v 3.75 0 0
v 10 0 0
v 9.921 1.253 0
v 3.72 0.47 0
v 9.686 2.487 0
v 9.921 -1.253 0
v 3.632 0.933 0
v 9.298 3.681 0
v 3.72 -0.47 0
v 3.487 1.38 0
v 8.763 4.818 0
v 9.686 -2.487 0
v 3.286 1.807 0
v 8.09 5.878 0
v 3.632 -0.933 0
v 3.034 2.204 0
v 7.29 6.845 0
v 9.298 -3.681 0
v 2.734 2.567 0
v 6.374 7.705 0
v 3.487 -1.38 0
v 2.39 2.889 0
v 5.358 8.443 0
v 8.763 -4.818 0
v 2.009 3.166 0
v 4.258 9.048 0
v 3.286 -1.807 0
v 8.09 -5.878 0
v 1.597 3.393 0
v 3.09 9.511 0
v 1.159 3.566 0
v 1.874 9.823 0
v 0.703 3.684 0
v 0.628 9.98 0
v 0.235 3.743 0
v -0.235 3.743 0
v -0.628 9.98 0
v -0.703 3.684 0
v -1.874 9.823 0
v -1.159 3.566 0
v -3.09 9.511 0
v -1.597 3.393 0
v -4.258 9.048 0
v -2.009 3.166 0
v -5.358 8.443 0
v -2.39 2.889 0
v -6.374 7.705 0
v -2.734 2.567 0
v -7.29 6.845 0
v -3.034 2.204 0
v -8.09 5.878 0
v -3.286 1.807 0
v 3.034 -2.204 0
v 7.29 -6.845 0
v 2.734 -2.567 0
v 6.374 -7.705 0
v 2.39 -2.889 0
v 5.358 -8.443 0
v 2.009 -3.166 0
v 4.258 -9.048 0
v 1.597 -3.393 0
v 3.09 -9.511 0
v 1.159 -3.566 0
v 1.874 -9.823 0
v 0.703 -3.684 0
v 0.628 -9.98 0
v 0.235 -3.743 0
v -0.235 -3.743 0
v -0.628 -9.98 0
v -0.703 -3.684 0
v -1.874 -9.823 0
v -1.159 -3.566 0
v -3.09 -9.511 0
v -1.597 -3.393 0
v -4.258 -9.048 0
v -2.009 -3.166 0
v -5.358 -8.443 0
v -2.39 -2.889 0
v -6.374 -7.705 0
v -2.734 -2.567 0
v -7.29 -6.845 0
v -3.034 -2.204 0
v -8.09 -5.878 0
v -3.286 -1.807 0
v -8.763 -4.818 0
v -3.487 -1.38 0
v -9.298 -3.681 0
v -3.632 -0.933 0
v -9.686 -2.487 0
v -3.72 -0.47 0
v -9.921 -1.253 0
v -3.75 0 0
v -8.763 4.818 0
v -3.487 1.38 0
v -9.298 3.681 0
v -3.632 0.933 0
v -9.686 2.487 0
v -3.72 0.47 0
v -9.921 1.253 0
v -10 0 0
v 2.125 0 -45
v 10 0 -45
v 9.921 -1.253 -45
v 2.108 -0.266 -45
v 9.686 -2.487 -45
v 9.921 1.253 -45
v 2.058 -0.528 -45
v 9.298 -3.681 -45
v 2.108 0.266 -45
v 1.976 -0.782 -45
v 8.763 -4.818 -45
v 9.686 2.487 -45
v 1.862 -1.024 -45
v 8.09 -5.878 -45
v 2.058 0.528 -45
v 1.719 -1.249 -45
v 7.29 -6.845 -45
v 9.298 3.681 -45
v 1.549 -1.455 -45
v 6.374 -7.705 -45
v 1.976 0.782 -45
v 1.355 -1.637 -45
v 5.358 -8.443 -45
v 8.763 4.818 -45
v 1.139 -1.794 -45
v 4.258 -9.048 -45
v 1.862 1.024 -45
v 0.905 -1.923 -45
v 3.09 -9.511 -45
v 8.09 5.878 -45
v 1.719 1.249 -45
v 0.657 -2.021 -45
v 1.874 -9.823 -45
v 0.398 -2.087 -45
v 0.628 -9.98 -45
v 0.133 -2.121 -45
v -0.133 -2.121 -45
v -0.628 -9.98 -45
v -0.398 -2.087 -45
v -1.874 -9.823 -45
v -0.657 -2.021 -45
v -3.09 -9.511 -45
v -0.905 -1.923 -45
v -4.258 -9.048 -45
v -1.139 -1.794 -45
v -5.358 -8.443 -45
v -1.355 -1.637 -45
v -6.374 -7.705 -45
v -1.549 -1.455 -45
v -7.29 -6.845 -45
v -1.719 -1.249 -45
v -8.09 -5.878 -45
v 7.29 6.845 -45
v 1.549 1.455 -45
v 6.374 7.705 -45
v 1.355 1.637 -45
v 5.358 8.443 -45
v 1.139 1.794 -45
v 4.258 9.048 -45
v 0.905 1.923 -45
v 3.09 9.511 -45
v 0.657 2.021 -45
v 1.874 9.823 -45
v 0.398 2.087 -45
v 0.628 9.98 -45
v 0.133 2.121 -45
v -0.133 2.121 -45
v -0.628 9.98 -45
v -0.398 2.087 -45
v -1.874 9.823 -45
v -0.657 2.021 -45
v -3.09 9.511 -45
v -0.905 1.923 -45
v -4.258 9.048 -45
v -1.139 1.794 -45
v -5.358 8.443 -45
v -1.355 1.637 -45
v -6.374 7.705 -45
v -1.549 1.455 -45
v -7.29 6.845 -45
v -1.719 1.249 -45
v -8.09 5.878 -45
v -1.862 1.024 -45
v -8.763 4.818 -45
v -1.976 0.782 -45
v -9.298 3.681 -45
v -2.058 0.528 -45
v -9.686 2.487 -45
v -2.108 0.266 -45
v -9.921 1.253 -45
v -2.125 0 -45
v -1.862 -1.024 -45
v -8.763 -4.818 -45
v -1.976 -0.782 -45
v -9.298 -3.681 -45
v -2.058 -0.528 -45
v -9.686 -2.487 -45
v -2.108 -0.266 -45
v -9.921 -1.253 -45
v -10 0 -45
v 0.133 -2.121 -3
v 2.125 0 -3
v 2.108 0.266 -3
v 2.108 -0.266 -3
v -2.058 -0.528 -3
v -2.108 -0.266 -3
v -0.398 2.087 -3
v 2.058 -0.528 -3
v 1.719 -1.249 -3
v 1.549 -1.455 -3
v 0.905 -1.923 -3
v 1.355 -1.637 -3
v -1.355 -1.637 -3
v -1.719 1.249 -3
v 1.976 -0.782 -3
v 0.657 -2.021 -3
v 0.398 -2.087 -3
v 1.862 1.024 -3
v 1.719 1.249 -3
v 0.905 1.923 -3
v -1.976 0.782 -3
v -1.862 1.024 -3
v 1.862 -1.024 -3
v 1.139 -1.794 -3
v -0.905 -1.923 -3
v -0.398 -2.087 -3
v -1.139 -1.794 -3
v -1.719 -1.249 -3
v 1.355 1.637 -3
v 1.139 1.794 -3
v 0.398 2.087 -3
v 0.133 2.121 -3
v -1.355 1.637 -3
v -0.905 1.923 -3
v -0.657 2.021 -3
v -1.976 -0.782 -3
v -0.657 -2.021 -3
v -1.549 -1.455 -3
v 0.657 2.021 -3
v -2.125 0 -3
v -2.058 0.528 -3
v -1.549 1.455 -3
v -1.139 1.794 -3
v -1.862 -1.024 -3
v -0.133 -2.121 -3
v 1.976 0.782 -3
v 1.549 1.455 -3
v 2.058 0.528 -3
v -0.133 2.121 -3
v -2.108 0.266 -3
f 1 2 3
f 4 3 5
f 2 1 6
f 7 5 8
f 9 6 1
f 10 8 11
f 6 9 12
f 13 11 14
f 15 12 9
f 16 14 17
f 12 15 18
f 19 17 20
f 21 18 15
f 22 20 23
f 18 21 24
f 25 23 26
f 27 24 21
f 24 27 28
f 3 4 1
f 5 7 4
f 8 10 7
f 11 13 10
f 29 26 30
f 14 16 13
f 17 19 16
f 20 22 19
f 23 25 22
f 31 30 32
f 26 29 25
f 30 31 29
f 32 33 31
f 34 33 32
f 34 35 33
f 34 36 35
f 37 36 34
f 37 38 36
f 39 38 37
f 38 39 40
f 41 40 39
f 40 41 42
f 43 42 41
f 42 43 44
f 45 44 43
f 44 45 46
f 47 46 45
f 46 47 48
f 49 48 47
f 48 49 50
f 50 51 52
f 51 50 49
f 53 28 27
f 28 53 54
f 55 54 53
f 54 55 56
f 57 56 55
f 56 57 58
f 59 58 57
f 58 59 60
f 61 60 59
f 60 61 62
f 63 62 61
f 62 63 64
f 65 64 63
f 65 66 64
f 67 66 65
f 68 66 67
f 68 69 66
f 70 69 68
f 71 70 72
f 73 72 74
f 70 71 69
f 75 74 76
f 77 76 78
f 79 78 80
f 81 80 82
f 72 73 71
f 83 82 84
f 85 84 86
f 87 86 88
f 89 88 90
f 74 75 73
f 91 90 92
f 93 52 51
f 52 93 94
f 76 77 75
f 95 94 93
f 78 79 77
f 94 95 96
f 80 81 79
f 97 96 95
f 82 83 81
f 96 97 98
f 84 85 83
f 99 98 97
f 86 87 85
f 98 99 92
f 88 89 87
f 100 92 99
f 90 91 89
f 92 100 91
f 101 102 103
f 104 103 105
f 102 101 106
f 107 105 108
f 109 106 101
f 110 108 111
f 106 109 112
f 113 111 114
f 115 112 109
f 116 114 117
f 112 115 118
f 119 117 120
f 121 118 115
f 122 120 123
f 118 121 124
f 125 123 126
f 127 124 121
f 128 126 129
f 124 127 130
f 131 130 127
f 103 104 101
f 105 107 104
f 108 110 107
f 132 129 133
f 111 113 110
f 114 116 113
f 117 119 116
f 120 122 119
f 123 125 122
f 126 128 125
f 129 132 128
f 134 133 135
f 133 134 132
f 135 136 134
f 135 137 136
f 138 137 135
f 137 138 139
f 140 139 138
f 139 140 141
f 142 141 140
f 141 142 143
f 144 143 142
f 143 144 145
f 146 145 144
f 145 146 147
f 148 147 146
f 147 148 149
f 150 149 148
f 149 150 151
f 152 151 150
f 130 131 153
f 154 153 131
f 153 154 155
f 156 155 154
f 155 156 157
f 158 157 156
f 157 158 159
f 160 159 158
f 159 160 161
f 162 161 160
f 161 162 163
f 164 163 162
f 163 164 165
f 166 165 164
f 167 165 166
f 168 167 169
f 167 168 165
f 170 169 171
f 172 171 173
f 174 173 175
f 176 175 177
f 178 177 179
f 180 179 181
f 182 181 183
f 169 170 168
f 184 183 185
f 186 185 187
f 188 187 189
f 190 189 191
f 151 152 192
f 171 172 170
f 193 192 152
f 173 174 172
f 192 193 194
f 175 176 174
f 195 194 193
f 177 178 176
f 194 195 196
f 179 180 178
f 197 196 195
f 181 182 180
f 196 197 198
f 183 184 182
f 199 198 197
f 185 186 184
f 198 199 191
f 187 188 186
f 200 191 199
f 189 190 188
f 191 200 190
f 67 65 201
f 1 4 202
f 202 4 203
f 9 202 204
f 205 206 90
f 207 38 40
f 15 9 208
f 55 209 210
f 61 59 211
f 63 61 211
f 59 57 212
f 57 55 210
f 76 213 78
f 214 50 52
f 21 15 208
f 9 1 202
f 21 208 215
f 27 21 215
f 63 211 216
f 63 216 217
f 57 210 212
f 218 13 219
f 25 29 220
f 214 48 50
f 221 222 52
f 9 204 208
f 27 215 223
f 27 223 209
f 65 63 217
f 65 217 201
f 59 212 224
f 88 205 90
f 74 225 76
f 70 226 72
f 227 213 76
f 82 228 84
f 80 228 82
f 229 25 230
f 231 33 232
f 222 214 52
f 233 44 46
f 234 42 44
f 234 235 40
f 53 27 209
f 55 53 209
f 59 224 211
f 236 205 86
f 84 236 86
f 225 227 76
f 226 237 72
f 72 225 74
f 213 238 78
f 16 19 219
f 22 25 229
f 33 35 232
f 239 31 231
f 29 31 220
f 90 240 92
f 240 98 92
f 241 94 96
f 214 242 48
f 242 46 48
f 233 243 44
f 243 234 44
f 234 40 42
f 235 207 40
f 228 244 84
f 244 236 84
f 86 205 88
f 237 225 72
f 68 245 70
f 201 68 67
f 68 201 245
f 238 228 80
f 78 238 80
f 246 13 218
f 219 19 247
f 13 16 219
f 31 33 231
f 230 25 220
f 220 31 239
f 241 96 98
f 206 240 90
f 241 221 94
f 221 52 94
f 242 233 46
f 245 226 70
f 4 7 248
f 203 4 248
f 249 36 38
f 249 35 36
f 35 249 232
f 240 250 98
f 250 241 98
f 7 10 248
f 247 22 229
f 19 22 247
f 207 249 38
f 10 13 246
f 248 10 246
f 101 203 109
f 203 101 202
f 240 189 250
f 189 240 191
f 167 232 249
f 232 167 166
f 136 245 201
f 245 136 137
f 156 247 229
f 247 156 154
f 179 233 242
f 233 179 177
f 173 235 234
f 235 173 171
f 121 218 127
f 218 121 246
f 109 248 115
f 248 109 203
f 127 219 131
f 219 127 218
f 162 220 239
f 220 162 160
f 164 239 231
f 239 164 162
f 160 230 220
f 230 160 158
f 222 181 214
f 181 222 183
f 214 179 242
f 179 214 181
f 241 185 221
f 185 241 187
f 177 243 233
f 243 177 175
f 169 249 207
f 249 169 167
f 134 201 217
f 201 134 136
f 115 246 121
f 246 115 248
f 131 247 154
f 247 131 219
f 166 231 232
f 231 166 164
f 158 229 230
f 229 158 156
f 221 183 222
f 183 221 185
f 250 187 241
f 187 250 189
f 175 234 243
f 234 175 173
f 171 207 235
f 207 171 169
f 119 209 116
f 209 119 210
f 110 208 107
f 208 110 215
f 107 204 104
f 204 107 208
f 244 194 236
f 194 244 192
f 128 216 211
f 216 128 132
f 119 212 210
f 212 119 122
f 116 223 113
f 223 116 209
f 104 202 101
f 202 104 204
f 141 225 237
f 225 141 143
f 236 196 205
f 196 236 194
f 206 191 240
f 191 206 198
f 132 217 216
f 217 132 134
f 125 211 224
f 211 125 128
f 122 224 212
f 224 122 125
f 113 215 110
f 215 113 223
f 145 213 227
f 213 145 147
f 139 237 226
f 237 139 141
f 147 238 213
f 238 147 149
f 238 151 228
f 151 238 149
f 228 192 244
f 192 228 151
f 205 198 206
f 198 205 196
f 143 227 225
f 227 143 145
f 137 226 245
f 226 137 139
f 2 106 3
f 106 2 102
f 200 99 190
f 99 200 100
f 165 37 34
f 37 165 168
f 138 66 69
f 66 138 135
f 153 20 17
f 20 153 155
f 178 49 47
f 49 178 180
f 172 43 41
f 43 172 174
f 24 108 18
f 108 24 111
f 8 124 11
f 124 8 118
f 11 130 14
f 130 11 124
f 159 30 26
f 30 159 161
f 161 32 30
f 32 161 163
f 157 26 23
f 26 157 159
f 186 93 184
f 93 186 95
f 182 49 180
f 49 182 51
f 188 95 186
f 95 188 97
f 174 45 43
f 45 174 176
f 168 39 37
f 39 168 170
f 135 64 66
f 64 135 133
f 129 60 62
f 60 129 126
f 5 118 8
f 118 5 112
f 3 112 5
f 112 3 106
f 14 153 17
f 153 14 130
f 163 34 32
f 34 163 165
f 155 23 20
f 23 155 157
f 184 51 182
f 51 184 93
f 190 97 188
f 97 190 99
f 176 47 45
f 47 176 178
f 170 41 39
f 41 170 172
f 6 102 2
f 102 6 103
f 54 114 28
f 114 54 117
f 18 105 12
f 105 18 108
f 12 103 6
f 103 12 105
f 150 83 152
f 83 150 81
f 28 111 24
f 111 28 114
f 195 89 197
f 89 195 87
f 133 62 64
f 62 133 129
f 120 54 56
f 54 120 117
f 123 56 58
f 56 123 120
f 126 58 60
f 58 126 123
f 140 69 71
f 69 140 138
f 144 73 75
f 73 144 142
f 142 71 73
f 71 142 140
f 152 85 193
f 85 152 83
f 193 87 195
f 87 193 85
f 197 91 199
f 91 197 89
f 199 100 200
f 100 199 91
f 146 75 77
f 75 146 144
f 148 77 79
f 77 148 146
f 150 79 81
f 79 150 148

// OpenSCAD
$fn = 50;


difference() {
	union() {
		translate(v = [0, 0, -45.0000000000]) {
			cylinder(h = 45, r = 10.0000000000);
		}
		cylinder(h = 0, r = 13.0000000000);
	}
	union() {
		translate(v = [0, 0, 0]) {
			rotate(a = [0, 0, 0]) {
				difference() {
					union() {
						#translate(v = [0, 0, -45.0000000000]) {
							cylinder(h = 45, r = 2.0000000000);
						}
						#translate(v = [0, 0, -3]) {
							cylinder(h = 3, r1 = 2.1250000000, r2 = 3.7500000000);
						}
						#translate(v = [0, 0, -45.0000000000]) {
							cylinder(h = 45, r = 2.1250000000);
						}
						#translate(v = [0, 0, -45.0000000000]) {
							cylinder(h = 45, r = 2.0000000000);
						}
					}
					union();
				}
			}
		}
	}
}
